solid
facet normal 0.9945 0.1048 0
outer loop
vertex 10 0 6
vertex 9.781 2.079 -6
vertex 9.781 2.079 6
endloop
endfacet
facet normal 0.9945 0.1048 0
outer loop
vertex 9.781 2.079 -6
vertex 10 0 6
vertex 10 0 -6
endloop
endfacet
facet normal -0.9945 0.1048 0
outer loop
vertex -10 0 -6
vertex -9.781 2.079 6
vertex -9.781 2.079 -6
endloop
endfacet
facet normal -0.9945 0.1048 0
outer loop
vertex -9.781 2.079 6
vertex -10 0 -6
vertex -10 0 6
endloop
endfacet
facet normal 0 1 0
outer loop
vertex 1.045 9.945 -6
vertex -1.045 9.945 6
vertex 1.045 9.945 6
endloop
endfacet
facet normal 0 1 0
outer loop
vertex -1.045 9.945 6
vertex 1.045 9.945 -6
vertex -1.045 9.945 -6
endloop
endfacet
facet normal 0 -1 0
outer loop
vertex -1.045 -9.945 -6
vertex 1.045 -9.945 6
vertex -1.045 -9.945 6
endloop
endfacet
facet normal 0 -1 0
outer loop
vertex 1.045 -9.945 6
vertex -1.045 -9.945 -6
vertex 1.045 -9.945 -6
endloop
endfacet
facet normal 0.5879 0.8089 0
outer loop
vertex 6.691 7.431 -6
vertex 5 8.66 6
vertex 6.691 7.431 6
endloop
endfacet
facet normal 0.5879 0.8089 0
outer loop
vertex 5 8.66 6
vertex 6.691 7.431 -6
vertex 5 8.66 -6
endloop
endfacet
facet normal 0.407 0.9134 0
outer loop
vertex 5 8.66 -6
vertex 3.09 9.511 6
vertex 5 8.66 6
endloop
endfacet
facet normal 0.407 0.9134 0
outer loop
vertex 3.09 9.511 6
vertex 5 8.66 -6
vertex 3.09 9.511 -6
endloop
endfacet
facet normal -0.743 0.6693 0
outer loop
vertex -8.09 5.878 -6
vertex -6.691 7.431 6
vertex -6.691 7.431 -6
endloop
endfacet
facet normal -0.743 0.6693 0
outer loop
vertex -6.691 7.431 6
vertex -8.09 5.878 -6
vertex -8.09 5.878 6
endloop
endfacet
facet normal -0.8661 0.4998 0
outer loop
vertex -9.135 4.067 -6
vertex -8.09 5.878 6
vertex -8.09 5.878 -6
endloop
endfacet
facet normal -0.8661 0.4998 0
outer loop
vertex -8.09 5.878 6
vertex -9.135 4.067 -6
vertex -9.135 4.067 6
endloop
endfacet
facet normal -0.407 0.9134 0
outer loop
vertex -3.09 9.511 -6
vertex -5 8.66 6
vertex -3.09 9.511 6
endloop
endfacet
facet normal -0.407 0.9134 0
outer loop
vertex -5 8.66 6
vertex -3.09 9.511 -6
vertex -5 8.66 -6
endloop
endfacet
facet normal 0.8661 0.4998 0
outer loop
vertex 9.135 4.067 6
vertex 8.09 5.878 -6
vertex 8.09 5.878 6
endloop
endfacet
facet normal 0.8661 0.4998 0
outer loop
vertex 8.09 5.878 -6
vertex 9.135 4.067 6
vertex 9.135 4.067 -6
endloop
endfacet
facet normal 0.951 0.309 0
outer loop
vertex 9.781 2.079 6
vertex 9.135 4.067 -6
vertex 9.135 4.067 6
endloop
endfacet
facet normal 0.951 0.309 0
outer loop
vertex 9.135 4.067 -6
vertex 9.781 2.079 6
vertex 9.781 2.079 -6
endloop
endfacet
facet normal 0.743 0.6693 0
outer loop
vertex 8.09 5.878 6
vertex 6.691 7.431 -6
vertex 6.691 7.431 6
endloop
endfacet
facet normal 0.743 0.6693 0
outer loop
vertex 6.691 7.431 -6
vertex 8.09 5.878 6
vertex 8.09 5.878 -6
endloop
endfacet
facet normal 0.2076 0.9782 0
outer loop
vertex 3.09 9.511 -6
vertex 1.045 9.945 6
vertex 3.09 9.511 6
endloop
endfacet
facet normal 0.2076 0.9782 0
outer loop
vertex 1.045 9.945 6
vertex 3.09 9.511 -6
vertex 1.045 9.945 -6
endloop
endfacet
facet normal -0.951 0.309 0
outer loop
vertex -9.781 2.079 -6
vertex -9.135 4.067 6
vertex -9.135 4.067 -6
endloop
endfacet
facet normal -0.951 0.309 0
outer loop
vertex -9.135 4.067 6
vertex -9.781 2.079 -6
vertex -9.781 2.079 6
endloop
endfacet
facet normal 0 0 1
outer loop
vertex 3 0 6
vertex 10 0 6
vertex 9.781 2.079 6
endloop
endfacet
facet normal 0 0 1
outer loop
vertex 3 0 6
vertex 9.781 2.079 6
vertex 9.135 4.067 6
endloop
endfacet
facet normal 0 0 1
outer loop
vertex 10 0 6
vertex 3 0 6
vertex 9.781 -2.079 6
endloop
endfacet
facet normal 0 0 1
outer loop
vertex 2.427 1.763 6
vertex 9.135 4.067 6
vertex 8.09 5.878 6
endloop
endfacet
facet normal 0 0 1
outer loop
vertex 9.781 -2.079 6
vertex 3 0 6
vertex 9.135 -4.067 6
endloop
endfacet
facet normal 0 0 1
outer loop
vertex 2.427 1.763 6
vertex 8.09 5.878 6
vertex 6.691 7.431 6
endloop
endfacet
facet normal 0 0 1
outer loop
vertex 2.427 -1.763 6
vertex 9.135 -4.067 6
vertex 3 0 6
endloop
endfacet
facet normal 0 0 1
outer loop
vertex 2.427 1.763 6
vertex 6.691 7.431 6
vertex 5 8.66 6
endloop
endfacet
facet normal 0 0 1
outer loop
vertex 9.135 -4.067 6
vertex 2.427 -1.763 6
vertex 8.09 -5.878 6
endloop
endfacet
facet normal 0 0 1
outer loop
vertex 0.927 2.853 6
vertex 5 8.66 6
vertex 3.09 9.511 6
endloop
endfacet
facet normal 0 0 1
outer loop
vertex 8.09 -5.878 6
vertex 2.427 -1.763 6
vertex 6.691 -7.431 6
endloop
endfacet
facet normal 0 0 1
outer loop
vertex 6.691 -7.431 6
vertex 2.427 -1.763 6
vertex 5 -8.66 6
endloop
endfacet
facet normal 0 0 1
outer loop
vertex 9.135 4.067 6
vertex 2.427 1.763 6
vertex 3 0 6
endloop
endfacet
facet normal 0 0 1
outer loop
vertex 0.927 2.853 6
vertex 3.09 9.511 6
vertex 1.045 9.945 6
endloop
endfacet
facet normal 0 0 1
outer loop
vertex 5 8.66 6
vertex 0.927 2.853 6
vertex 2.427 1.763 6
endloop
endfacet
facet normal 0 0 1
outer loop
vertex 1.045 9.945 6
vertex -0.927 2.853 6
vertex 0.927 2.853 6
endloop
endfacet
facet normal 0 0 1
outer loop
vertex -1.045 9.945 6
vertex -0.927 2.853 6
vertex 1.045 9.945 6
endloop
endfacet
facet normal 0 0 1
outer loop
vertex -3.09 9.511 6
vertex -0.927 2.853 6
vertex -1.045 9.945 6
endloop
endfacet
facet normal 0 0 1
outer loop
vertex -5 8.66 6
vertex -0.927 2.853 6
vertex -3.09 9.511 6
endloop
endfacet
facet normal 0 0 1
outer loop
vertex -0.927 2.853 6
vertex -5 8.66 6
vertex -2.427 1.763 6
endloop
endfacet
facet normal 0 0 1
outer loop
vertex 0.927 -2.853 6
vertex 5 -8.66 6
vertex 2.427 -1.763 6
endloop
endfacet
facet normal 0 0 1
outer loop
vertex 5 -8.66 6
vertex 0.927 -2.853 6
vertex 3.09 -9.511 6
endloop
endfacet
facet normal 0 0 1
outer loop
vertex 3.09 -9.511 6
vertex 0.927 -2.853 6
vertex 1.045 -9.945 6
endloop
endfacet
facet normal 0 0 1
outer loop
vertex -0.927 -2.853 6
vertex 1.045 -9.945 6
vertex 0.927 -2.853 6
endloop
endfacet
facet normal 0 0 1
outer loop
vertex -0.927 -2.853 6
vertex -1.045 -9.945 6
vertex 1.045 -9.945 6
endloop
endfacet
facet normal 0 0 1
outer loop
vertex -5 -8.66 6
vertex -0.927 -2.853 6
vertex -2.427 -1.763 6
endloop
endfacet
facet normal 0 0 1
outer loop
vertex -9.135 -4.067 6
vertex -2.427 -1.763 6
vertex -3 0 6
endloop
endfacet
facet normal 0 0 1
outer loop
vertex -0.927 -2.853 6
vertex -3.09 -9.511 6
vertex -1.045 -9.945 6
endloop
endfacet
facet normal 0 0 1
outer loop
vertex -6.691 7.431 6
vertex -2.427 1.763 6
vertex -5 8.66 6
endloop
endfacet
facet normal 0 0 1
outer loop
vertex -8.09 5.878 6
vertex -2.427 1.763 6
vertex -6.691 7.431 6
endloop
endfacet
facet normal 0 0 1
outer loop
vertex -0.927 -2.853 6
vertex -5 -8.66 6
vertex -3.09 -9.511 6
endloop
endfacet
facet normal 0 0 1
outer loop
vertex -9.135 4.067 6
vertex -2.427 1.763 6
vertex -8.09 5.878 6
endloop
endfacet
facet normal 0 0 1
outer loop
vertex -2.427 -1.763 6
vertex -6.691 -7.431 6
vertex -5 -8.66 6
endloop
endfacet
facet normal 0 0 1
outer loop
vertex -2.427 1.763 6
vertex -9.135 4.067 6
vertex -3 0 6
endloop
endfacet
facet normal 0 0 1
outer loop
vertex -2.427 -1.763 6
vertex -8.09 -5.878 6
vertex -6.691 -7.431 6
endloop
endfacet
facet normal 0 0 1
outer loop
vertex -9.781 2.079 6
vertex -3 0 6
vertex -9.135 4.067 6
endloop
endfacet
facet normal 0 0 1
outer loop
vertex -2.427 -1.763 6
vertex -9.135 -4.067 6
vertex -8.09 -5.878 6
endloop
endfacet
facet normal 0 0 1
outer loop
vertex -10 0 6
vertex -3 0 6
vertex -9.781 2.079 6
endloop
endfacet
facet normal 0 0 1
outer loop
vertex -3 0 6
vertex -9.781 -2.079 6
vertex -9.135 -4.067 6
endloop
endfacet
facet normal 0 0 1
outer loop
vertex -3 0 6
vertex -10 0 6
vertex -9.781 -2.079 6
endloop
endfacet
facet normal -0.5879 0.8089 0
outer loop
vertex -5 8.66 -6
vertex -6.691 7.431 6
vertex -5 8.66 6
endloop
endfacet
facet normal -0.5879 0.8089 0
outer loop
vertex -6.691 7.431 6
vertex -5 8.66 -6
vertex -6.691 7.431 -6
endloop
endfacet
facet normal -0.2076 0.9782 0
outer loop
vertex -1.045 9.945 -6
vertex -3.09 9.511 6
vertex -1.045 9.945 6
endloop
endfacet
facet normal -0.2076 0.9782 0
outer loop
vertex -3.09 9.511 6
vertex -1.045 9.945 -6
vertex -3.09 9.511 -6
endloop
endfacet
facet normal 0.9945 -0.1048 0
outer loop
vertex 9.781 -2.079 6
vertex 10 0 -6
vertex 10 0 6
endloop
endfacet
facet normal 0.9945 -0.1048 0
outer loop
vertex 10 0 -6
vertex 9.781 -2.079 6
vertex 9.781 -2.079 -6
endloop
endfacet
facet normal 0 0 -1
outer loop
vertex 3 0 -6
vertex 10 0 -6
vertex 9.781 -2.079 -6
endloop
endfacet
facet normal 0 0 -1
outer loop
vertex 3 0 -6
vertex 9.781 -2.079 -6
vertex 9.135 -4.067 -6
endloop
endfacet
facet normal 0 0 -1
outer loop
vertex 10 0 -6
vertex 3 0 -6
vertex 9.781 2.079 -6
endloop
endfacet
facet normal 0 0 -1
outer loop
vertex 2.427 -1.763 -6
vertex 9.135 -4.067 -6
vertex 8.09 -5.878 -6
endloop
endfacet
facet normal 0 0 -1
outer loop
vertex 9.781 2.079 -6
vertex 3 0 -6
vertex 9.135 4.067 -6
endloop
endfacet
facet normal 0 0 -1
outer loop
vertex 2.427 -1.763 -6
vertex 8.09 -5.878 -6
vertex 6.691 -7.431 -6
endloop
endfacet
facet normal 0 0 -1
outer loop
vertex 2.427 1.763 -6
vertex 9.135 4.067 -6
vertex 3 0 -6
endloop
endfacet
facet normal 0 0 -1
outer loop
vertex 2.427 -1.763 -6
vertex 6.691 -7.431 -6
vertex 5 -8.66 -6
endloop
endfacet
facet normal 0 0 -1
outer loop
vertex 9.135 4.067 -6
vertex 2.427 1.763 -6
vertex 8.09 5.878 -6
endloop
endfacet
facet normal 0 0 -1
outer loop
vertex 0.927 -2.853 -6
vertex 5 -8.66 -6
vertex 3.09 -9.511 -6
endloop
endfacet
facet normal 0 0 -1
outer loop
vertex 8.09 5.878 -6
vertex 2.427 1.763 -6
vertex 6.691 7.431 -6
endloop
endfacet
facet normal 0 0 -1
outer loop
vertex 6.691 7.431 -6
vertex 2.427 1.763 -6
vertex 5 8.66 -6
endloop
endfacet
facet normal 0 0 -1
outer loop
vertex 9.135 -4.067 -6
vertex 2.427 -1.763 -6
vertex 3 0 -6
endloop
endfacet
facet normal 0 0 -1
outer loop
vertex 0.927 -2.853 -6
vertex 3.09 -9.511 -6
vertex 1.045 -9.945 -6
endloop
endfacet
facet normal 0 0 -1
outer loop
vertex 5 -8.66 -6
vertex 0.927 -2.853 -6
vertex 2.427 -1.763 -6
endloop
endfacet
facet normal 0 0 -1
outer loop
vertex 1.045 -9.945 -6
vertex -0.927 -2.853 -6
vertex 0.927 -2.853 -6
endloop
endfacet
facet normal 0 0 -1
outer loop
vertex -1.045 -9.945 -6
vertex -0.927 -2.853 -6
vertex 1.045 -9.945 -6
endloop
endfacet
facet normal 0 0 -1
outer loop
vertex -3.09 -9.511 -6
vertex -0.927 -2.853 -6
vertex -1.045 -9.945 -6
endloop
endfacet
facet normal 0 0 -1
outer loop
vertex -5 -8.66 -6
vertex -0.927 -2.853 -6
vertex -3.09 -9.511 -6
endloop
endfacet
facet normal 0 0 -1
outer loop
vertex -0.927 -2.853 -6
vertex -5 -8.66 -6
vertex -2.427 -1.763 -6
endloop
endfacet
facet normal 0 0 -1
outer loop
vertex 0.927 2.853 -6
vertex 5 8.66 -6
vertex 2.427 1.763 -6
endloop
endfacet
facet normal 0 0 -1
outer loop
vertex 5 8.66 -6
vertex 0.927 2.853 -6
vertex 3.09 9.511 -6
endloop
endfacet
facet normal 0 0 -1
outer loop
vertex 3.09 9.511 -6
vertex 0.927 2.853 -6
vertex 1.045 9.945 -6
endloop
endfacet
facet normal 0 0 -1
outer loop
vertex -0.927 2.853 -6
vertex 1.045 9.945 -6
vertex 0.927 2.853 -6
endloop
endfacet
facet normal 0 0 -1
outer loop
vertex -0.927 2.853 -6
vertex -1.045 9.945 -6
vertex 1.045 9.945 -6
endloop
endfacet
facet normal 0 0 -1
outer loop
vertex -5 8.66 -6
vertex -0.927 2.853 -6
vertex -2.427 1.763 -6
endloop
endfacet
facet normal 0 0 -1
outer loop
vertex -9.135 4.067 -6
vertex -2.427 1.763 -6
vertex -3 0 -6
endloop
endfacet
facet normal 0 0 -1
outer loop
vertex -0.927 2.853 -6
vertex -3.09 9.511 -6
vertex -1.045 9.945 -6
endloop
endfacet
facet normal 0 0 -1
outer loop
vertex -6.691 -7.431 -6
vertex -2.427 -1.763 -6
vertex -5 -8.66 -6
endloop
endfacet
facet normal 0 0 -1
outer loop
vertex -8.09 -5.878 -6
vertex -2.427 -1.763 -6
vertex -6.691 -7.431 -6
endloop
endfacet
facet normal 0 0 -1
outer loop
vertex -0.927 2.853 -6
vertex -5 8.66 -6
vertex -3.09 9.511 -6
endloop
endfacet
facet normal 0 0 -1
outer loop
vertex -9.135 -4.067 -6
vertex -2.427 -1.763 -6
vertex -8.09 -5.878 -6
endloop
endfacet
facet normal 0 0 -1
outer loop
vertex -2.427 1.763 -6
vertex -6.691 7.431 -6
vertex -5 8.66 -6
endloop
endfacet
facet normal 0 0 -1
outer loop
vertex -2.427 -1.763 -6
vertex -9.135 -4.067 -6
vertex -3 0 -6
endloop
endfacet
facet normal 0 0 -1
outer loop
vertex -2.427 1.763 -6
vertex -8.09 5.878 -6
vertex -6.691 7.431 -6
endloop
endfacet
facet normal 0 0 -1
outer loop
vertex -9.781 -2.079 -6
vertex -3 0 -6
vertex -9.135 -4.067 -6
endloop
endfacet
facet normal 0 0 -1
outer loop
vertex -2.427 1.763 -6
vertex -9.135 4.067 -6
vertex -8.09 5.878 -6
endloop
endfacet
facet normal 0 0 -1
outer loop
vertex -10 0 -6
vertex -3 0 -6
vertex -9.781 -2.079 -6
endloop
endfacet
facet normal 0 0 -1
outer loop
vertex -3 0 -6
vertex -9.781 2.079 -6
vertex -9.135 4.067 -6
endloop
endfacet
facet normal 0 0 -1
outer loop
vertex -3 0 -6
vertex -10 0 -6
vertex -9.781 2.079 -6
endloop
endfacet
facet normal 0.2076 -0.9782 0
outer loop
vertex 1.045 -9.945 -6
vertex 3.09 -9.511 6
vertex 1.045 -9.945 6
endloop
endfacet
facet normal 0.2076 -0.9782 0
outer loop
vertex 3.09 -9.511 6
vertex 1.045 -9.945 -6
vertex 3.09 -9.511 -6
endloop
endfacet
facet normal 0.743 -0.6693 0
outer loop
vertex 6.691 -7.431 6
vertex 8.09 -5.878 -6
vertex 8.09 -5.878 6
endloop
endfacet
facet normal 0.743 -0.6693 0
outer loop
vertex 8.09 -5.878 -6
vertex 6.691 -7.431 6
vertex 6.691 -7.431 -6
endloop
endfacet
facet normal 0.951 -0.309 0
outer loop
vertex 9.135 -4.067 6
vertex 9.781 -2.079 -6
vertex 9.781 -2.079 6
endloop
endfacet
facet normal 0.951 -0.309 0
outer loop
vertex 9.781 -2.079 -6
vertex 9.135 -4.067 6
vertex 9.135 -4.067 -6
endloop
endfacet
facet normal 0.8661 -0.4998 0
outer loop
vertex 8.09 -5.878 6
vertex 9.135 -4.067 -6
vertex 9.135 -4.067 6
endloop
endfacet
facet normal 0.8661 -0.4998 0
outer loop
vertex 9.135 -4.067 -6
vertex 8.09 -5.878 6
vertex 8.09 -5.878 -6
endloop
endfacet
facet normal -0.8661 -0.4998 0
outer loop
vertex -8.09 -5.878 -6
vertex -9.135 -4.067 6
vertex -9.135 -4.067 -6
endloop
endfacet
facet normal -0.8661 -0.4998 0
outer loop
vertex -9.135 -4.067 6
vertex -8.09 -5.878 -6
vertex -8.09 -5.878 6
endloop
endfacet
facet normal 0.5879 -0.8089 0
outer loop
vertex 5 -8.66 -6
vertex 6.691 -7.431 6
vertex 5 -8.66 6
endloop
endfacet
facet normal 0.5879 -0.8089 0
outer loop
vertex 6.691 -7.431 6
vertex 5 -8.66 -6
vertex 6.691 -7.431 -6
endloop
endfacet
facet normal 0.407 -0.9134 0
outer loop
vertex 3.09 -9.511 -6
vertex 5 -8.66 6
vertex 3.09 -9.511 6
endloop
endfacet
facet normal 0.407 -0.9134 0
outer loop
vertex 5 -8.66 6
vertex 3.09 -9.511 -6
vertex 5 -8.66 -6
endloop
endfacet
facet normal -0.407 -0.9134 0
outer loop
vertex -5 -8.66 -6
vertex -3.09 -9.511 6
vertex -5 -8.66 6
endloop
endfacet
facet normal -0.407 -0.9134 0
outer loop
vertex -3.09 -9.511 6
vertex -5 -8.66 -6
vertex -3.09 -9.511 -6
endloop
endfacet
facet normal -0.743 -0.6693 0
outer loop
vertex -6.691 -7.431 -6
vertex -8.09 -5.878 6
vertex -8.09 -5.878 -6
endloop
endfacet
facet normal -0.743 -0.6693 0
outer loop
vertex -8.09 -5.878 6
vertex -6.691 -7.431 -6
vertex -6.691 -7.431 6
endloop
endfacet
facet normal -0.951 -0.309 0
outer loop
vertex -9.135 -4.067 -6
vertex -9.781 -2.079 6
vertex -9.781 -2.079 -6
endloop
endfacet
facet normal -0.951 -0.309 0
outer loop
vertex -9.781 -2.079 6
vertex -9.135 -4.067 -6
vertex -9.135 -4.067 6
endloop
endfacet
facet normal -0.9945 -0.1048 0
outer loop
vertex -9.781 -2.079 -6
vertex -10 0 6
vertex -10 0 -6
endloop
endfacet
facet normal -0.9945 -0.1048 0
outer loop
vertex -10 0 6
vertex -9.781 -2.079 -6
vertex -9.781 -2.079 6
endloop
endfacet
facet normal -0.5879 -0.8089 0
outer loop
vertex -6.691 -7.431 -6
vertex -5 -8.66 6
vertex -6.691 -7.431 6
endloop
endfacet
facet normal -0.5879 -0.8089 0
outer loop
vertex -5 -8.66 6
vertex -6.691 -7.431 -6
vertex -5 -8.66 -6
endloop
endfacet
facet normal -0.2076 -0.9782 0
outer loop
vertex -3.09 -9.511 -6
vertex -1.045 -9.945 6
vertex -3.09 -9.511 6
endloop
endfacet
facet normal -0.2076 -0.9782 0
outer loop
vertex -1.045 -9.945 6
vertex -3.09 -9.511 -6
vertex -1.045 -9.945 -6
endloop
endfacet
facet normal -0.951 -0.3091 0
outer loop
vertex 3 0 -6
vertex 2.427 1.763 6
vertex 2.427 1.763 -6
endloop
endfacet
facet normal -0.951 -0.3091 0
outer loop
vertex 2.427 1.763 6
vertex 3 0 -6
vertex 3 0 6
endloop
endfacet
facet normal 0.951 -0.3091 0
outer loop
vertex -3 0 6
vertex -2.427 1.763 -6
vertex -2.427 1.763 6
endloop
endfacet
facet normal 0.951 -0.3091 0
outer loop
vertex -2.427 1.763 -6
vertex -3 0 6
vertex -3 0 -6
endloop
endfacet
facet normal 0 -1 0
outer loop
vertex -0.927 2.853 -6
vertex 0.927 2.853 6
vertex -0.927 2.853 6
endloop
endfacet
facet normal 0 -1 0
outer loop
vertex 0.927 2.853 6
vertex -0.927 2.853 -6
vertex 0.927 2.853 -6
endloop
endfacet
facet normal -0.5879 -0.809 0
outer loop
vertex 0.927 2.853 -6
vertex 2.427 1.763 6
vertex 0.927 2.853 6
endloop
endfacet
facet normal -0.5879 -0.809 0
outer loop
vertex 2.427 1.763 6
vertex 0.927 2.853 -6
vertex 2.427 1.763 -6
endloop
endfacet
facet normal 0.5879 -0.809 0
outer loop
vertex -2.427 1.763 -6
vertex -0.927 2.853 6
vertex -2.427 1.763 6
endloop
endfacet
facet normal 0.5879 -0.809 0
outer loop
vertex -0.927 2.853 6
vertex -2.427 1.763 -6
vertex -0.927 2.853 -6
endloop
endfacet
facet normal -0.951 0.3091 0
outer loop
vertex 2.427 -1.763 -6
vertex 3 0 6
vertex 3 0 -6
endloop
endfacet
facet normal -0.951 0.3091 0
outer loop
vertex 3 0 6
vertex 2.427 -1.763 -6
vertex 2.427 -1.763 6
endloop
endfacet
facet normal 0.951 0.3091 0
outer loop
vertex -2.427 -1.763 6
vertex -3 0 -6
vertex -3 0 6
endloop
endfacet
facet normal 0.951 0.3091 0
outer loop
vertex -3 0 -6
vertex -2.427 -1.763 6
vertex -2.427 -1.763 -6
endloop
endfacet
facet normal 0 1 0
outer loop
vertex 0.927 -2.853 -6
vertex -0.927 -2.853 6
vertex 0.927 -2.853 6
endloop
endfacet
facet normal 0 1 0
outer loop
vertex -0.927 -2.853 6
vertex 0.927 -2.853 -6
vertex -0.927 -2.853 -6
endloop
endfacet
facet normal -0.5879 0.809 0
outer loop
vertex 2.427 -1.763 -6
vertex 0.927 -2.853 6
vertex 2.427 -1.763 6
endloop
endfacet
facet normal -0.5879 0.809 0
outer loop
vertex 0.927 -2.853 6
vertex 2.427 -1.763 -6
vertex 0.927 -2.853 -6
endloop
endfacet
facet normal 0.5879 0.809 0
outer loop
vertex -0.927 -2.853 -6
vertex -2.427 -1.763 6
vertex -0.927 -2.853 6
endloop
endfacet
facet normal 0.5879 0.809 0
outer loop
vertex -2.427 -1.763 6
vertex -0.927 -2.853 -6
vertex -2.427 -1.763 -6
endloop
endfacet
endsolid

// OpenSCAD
// Cylindrical spacer with 6 mm inner hole
difference() {
    cylinder(h = 12, d = 20, center = true);  // outer body
    cylinder(h = 14, d = 6, center = true);   // through-hole (slightly taller to ensure clean subtraction)
}
